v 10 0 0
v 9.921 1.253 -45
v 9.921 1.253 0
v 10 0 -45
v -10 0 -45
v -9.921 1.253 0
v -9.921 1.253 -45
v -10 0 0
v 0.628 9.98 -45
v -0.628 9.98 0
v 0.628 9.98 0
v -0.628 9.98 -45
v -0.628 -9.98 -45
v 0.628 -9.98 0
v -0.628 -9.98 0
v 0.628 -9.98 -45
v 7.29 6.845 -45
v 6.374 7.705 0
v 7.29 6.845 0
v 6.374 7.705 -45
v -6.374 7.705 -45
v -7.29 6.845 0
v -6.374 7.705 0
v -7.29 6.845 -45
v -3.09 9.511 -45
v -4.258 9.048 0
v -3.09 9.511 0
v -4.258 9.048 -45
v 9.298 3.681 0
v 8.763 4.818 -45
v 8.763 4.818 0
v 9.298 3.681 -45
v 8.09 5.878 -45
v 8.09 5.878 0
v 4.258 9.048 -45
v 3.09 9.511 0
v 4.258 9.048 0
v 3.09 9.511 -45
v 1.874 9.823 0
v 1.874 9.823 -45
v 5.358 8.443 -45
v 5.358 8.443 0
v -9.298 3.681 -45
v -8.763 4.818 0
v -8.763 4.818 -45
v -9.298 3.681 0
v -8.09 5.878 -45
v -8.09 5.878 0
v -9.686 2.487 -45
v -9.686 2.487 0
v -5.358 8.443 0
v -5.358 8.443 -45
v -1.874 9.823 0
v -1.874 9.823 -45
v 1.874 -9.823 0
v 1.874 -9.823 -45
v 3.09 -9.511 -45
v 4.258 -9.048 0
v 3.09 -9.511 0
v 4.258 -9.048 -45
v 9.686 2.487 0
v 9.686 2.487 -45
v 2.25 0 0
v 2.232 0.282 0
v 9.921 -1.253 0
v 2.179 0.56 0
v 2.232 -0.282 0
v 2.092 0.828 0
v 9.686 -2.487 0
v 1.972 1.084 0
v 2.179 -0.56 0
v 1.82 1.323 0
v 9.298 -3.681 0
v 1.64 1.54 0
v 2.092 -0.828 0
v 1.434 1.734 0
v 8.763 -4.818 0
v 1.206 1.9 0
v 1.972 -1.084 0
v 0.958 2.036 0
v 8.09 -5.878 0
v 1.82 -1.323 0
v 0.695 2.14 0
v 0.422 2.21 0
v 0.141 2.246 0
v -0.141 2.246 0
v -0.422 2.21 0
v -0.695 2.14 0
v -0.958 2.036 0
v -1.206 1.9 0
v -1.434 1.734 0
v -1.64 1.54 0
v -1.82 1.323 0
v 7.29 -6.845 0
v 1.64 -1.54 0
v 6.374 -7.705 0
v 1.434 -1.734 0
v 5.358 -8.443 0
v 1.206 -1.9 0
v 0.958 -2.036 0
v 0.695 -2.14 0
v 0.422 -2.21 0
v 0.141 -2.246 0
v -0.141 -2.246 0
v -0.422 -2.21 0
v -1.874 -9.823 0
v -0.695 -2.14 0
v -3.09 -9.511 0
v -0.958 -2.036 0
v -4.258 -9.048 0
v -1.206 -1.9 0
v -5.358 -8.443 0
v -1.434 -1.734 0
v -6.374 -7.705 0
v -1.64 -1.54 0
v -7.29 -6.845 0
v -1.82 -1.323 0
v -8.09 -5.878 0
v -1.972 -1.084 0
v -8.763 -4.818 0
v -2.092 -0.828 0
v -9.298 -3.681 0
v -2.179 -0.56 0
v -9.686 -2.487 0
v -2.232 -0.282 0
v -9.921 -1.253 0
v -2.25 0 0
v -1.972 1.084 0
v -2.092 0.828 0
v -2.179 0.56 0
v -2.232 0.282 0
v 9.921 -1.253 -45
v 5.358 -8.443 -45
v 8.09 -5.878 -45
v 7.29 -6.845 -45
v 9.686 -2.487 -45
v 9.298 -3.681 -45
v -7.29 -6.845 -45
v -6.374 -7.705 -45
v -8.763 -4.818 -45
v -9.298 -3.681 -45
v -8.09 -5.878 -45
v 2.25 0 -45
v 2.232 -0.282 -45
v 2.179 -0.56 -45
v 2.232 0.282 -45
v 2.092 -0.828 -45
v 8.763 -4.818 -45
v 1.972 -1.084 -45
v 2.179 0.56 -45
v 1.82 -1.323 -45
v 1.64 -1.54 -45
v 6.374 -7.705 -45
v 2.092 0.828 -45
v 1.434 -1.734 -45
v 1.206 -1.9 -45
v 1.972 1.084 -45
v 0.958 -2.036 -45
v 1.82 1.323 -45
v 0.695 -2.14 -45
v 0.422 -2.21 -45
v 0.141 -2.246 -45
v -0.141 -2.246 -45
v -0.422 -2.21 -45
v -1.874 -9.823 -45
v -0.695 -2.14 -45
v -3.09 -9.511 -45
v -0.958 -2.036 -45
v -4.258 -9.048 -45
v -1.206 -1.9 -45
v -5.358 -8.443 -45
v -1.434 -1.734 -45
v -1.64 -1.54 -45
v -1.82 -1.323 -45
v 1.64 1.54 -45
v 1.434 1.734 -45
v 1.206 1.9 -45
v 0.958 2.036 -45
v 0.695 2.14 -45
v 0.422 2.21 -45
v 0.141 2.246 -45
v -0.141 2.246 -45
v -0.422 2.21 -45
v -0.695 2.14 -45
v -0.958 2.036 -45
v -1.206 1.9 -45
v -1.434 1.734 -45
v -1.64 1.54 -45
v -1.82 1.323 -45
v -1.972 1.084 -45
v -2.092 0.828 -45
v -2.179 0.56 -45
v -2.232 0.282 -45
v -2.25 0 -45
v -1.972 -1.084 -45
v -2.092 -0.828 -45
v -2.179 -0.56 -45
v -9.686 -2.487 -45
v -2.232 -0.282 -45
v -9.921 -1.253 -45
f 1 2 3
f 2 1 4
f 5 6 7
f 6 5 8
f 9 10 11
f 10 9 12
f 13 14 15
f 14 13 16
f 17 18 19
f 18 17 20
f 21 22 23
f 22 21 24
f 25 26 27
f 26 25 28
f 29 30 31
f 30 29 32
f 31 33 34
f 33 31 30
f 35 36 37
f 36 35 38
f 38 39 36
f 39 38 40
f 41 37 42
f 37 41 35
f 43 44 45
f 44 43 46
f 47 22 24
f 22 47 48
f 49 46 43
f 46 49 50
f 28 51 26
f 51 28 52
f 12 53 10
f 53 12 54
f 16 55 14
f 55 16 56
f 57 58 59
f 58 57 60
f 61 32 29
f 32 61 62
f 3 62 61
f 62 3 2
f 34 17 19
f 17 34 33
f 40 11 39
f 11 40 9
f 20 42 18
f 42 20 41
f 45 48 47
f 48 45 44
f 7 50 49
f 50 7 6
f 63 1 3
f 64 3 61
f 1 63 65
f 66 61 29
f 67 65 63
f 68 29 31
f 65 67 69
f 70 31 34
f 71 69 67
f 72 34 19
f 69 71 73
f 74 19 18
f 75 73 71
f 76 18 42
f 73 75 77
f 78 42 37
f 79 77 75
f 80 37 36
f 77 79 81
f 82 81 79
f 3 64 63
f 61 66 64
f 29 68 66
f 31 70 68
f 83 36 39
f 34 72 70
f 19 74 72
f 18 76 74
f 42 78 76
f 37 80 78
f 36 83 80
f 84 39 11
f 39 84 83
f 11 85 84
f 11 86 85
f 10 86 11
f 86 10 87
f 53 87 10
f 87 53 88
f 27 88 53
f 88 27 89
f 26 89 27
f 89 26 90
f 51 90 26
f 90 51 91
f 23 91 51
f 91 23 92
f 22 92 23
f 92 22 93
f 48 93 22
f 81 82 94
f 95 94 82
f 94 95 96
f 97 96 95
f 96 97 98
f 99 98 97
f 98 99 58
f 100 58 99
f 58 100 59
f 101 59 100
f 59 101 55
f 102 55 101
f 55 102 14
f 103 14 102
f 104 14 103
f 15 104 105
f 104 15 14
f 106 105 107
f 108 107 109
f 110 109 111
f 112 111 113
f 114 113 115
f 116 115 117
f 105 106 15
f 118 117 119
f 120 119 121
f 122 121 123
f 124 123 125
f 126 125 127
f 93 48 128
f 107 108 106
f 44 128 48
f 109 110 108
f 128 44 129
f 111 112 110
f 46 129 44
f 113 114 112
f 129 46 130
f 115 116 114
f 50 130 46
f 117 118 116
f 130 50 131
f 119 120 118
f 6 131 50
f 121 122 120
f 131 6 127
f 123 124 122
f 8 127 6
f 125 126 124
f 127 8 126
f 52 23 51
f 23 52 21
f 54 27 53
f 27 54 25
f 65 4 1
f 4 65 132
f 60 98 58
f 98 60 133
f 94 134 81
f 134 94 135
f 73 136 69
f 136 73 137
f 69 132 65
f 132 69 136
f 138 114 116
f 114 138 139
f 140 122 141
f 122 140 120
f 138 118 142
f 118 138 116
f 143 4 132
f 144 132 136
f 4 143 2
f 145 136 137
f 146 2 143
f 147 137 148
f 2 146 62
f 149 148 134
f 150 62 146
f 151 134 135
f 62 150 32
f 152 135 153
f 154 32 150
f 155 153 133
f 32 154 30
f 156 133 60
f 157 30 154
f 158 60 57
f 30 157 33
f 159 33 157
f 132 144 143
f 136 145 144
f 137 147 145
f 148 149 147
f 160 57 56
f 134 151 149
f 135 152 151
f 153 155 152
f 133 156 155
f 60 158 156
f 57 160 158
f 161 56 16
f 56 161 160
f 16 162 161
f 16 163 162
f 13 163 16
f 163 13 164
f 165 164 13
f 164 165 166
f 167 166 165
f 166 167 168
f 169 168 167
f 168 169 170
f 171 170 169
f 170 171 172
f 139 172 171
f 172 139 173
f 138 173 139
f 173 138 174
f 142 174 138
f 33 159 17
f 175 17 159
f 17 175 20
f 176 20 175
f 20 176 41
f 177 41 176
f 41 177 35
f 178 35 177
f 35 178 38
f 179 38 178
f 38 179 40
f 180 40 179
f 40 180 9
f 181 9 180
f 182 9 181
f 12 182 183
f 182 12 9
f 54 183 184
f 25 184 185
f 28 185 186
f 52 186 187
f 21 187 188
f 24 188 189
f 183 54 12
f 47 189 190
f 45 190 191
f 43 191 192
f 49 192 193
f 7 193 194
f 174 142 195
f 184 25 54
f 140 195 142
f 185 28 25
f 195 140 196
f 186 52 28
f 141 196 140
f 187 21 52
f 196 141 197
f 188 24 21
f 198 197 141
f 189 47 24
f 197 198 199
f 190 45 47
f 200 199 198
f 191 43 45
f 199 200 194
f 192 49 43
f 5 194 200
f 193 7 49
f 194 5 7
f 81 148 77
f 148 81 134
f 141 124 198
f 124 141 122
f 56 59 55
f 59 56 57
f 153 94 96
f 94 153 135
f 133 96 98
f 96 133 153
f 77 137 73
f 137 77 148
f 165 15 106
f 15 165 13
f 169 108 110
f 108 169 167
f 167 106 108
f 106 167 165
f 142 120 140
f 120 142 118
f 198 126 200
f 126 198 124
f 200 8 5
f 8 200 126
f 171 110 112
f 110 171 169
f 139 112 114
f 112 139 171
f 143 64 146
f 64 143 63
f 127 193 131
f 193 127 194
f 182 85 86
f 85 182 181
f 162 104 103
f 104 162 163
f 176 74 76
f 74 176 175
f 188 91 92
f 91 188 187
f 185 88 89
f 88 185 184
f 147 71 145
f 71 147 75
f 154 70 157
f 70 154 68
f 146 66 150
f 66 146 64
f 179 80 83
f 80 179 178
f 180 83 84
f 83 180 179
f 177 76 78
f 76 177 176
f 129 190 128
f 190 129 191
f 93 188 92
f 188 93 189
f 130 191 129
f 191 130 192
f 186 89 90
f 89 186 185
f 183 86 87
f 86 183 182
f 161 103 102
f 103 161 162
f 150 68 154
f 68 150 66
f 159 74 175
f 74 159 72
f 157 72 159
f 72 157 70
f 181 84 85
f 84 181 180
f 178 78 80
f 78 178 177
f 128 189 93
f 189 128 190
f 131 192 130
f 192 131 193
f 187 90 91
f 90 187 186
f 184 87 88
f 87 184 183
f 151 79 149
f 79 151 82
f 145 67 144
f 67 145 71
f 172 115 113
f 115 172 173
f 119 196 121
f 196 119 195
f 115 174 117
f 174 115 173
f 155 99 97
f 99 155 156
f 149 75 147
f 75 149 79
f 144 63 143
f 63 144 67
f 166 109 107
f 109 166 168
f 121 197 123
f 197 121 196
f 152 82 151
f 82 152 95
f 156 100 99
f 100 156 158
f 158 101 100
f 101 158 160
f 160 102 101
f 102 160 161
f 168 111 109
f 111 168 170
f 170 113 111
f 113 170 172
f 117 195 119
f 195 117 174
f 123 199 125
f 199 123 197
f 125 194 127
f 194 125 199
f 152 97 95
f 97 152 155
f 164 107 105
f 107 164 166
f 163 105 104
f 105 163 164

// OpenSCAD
$fn = 50;


difference() {
	union() {
		translate(v = [0, 0, -45.0000000000]) {
			cylinder(h = 45, r = 10.0000000000);
		}
		cylinder(h = 0, r = 13.0000000000);
	}
	union() {
		#translate(v = [0, 0, -45]) {
			cylinder(h = 45, r = 2.2500000000);
		}
	}
}
